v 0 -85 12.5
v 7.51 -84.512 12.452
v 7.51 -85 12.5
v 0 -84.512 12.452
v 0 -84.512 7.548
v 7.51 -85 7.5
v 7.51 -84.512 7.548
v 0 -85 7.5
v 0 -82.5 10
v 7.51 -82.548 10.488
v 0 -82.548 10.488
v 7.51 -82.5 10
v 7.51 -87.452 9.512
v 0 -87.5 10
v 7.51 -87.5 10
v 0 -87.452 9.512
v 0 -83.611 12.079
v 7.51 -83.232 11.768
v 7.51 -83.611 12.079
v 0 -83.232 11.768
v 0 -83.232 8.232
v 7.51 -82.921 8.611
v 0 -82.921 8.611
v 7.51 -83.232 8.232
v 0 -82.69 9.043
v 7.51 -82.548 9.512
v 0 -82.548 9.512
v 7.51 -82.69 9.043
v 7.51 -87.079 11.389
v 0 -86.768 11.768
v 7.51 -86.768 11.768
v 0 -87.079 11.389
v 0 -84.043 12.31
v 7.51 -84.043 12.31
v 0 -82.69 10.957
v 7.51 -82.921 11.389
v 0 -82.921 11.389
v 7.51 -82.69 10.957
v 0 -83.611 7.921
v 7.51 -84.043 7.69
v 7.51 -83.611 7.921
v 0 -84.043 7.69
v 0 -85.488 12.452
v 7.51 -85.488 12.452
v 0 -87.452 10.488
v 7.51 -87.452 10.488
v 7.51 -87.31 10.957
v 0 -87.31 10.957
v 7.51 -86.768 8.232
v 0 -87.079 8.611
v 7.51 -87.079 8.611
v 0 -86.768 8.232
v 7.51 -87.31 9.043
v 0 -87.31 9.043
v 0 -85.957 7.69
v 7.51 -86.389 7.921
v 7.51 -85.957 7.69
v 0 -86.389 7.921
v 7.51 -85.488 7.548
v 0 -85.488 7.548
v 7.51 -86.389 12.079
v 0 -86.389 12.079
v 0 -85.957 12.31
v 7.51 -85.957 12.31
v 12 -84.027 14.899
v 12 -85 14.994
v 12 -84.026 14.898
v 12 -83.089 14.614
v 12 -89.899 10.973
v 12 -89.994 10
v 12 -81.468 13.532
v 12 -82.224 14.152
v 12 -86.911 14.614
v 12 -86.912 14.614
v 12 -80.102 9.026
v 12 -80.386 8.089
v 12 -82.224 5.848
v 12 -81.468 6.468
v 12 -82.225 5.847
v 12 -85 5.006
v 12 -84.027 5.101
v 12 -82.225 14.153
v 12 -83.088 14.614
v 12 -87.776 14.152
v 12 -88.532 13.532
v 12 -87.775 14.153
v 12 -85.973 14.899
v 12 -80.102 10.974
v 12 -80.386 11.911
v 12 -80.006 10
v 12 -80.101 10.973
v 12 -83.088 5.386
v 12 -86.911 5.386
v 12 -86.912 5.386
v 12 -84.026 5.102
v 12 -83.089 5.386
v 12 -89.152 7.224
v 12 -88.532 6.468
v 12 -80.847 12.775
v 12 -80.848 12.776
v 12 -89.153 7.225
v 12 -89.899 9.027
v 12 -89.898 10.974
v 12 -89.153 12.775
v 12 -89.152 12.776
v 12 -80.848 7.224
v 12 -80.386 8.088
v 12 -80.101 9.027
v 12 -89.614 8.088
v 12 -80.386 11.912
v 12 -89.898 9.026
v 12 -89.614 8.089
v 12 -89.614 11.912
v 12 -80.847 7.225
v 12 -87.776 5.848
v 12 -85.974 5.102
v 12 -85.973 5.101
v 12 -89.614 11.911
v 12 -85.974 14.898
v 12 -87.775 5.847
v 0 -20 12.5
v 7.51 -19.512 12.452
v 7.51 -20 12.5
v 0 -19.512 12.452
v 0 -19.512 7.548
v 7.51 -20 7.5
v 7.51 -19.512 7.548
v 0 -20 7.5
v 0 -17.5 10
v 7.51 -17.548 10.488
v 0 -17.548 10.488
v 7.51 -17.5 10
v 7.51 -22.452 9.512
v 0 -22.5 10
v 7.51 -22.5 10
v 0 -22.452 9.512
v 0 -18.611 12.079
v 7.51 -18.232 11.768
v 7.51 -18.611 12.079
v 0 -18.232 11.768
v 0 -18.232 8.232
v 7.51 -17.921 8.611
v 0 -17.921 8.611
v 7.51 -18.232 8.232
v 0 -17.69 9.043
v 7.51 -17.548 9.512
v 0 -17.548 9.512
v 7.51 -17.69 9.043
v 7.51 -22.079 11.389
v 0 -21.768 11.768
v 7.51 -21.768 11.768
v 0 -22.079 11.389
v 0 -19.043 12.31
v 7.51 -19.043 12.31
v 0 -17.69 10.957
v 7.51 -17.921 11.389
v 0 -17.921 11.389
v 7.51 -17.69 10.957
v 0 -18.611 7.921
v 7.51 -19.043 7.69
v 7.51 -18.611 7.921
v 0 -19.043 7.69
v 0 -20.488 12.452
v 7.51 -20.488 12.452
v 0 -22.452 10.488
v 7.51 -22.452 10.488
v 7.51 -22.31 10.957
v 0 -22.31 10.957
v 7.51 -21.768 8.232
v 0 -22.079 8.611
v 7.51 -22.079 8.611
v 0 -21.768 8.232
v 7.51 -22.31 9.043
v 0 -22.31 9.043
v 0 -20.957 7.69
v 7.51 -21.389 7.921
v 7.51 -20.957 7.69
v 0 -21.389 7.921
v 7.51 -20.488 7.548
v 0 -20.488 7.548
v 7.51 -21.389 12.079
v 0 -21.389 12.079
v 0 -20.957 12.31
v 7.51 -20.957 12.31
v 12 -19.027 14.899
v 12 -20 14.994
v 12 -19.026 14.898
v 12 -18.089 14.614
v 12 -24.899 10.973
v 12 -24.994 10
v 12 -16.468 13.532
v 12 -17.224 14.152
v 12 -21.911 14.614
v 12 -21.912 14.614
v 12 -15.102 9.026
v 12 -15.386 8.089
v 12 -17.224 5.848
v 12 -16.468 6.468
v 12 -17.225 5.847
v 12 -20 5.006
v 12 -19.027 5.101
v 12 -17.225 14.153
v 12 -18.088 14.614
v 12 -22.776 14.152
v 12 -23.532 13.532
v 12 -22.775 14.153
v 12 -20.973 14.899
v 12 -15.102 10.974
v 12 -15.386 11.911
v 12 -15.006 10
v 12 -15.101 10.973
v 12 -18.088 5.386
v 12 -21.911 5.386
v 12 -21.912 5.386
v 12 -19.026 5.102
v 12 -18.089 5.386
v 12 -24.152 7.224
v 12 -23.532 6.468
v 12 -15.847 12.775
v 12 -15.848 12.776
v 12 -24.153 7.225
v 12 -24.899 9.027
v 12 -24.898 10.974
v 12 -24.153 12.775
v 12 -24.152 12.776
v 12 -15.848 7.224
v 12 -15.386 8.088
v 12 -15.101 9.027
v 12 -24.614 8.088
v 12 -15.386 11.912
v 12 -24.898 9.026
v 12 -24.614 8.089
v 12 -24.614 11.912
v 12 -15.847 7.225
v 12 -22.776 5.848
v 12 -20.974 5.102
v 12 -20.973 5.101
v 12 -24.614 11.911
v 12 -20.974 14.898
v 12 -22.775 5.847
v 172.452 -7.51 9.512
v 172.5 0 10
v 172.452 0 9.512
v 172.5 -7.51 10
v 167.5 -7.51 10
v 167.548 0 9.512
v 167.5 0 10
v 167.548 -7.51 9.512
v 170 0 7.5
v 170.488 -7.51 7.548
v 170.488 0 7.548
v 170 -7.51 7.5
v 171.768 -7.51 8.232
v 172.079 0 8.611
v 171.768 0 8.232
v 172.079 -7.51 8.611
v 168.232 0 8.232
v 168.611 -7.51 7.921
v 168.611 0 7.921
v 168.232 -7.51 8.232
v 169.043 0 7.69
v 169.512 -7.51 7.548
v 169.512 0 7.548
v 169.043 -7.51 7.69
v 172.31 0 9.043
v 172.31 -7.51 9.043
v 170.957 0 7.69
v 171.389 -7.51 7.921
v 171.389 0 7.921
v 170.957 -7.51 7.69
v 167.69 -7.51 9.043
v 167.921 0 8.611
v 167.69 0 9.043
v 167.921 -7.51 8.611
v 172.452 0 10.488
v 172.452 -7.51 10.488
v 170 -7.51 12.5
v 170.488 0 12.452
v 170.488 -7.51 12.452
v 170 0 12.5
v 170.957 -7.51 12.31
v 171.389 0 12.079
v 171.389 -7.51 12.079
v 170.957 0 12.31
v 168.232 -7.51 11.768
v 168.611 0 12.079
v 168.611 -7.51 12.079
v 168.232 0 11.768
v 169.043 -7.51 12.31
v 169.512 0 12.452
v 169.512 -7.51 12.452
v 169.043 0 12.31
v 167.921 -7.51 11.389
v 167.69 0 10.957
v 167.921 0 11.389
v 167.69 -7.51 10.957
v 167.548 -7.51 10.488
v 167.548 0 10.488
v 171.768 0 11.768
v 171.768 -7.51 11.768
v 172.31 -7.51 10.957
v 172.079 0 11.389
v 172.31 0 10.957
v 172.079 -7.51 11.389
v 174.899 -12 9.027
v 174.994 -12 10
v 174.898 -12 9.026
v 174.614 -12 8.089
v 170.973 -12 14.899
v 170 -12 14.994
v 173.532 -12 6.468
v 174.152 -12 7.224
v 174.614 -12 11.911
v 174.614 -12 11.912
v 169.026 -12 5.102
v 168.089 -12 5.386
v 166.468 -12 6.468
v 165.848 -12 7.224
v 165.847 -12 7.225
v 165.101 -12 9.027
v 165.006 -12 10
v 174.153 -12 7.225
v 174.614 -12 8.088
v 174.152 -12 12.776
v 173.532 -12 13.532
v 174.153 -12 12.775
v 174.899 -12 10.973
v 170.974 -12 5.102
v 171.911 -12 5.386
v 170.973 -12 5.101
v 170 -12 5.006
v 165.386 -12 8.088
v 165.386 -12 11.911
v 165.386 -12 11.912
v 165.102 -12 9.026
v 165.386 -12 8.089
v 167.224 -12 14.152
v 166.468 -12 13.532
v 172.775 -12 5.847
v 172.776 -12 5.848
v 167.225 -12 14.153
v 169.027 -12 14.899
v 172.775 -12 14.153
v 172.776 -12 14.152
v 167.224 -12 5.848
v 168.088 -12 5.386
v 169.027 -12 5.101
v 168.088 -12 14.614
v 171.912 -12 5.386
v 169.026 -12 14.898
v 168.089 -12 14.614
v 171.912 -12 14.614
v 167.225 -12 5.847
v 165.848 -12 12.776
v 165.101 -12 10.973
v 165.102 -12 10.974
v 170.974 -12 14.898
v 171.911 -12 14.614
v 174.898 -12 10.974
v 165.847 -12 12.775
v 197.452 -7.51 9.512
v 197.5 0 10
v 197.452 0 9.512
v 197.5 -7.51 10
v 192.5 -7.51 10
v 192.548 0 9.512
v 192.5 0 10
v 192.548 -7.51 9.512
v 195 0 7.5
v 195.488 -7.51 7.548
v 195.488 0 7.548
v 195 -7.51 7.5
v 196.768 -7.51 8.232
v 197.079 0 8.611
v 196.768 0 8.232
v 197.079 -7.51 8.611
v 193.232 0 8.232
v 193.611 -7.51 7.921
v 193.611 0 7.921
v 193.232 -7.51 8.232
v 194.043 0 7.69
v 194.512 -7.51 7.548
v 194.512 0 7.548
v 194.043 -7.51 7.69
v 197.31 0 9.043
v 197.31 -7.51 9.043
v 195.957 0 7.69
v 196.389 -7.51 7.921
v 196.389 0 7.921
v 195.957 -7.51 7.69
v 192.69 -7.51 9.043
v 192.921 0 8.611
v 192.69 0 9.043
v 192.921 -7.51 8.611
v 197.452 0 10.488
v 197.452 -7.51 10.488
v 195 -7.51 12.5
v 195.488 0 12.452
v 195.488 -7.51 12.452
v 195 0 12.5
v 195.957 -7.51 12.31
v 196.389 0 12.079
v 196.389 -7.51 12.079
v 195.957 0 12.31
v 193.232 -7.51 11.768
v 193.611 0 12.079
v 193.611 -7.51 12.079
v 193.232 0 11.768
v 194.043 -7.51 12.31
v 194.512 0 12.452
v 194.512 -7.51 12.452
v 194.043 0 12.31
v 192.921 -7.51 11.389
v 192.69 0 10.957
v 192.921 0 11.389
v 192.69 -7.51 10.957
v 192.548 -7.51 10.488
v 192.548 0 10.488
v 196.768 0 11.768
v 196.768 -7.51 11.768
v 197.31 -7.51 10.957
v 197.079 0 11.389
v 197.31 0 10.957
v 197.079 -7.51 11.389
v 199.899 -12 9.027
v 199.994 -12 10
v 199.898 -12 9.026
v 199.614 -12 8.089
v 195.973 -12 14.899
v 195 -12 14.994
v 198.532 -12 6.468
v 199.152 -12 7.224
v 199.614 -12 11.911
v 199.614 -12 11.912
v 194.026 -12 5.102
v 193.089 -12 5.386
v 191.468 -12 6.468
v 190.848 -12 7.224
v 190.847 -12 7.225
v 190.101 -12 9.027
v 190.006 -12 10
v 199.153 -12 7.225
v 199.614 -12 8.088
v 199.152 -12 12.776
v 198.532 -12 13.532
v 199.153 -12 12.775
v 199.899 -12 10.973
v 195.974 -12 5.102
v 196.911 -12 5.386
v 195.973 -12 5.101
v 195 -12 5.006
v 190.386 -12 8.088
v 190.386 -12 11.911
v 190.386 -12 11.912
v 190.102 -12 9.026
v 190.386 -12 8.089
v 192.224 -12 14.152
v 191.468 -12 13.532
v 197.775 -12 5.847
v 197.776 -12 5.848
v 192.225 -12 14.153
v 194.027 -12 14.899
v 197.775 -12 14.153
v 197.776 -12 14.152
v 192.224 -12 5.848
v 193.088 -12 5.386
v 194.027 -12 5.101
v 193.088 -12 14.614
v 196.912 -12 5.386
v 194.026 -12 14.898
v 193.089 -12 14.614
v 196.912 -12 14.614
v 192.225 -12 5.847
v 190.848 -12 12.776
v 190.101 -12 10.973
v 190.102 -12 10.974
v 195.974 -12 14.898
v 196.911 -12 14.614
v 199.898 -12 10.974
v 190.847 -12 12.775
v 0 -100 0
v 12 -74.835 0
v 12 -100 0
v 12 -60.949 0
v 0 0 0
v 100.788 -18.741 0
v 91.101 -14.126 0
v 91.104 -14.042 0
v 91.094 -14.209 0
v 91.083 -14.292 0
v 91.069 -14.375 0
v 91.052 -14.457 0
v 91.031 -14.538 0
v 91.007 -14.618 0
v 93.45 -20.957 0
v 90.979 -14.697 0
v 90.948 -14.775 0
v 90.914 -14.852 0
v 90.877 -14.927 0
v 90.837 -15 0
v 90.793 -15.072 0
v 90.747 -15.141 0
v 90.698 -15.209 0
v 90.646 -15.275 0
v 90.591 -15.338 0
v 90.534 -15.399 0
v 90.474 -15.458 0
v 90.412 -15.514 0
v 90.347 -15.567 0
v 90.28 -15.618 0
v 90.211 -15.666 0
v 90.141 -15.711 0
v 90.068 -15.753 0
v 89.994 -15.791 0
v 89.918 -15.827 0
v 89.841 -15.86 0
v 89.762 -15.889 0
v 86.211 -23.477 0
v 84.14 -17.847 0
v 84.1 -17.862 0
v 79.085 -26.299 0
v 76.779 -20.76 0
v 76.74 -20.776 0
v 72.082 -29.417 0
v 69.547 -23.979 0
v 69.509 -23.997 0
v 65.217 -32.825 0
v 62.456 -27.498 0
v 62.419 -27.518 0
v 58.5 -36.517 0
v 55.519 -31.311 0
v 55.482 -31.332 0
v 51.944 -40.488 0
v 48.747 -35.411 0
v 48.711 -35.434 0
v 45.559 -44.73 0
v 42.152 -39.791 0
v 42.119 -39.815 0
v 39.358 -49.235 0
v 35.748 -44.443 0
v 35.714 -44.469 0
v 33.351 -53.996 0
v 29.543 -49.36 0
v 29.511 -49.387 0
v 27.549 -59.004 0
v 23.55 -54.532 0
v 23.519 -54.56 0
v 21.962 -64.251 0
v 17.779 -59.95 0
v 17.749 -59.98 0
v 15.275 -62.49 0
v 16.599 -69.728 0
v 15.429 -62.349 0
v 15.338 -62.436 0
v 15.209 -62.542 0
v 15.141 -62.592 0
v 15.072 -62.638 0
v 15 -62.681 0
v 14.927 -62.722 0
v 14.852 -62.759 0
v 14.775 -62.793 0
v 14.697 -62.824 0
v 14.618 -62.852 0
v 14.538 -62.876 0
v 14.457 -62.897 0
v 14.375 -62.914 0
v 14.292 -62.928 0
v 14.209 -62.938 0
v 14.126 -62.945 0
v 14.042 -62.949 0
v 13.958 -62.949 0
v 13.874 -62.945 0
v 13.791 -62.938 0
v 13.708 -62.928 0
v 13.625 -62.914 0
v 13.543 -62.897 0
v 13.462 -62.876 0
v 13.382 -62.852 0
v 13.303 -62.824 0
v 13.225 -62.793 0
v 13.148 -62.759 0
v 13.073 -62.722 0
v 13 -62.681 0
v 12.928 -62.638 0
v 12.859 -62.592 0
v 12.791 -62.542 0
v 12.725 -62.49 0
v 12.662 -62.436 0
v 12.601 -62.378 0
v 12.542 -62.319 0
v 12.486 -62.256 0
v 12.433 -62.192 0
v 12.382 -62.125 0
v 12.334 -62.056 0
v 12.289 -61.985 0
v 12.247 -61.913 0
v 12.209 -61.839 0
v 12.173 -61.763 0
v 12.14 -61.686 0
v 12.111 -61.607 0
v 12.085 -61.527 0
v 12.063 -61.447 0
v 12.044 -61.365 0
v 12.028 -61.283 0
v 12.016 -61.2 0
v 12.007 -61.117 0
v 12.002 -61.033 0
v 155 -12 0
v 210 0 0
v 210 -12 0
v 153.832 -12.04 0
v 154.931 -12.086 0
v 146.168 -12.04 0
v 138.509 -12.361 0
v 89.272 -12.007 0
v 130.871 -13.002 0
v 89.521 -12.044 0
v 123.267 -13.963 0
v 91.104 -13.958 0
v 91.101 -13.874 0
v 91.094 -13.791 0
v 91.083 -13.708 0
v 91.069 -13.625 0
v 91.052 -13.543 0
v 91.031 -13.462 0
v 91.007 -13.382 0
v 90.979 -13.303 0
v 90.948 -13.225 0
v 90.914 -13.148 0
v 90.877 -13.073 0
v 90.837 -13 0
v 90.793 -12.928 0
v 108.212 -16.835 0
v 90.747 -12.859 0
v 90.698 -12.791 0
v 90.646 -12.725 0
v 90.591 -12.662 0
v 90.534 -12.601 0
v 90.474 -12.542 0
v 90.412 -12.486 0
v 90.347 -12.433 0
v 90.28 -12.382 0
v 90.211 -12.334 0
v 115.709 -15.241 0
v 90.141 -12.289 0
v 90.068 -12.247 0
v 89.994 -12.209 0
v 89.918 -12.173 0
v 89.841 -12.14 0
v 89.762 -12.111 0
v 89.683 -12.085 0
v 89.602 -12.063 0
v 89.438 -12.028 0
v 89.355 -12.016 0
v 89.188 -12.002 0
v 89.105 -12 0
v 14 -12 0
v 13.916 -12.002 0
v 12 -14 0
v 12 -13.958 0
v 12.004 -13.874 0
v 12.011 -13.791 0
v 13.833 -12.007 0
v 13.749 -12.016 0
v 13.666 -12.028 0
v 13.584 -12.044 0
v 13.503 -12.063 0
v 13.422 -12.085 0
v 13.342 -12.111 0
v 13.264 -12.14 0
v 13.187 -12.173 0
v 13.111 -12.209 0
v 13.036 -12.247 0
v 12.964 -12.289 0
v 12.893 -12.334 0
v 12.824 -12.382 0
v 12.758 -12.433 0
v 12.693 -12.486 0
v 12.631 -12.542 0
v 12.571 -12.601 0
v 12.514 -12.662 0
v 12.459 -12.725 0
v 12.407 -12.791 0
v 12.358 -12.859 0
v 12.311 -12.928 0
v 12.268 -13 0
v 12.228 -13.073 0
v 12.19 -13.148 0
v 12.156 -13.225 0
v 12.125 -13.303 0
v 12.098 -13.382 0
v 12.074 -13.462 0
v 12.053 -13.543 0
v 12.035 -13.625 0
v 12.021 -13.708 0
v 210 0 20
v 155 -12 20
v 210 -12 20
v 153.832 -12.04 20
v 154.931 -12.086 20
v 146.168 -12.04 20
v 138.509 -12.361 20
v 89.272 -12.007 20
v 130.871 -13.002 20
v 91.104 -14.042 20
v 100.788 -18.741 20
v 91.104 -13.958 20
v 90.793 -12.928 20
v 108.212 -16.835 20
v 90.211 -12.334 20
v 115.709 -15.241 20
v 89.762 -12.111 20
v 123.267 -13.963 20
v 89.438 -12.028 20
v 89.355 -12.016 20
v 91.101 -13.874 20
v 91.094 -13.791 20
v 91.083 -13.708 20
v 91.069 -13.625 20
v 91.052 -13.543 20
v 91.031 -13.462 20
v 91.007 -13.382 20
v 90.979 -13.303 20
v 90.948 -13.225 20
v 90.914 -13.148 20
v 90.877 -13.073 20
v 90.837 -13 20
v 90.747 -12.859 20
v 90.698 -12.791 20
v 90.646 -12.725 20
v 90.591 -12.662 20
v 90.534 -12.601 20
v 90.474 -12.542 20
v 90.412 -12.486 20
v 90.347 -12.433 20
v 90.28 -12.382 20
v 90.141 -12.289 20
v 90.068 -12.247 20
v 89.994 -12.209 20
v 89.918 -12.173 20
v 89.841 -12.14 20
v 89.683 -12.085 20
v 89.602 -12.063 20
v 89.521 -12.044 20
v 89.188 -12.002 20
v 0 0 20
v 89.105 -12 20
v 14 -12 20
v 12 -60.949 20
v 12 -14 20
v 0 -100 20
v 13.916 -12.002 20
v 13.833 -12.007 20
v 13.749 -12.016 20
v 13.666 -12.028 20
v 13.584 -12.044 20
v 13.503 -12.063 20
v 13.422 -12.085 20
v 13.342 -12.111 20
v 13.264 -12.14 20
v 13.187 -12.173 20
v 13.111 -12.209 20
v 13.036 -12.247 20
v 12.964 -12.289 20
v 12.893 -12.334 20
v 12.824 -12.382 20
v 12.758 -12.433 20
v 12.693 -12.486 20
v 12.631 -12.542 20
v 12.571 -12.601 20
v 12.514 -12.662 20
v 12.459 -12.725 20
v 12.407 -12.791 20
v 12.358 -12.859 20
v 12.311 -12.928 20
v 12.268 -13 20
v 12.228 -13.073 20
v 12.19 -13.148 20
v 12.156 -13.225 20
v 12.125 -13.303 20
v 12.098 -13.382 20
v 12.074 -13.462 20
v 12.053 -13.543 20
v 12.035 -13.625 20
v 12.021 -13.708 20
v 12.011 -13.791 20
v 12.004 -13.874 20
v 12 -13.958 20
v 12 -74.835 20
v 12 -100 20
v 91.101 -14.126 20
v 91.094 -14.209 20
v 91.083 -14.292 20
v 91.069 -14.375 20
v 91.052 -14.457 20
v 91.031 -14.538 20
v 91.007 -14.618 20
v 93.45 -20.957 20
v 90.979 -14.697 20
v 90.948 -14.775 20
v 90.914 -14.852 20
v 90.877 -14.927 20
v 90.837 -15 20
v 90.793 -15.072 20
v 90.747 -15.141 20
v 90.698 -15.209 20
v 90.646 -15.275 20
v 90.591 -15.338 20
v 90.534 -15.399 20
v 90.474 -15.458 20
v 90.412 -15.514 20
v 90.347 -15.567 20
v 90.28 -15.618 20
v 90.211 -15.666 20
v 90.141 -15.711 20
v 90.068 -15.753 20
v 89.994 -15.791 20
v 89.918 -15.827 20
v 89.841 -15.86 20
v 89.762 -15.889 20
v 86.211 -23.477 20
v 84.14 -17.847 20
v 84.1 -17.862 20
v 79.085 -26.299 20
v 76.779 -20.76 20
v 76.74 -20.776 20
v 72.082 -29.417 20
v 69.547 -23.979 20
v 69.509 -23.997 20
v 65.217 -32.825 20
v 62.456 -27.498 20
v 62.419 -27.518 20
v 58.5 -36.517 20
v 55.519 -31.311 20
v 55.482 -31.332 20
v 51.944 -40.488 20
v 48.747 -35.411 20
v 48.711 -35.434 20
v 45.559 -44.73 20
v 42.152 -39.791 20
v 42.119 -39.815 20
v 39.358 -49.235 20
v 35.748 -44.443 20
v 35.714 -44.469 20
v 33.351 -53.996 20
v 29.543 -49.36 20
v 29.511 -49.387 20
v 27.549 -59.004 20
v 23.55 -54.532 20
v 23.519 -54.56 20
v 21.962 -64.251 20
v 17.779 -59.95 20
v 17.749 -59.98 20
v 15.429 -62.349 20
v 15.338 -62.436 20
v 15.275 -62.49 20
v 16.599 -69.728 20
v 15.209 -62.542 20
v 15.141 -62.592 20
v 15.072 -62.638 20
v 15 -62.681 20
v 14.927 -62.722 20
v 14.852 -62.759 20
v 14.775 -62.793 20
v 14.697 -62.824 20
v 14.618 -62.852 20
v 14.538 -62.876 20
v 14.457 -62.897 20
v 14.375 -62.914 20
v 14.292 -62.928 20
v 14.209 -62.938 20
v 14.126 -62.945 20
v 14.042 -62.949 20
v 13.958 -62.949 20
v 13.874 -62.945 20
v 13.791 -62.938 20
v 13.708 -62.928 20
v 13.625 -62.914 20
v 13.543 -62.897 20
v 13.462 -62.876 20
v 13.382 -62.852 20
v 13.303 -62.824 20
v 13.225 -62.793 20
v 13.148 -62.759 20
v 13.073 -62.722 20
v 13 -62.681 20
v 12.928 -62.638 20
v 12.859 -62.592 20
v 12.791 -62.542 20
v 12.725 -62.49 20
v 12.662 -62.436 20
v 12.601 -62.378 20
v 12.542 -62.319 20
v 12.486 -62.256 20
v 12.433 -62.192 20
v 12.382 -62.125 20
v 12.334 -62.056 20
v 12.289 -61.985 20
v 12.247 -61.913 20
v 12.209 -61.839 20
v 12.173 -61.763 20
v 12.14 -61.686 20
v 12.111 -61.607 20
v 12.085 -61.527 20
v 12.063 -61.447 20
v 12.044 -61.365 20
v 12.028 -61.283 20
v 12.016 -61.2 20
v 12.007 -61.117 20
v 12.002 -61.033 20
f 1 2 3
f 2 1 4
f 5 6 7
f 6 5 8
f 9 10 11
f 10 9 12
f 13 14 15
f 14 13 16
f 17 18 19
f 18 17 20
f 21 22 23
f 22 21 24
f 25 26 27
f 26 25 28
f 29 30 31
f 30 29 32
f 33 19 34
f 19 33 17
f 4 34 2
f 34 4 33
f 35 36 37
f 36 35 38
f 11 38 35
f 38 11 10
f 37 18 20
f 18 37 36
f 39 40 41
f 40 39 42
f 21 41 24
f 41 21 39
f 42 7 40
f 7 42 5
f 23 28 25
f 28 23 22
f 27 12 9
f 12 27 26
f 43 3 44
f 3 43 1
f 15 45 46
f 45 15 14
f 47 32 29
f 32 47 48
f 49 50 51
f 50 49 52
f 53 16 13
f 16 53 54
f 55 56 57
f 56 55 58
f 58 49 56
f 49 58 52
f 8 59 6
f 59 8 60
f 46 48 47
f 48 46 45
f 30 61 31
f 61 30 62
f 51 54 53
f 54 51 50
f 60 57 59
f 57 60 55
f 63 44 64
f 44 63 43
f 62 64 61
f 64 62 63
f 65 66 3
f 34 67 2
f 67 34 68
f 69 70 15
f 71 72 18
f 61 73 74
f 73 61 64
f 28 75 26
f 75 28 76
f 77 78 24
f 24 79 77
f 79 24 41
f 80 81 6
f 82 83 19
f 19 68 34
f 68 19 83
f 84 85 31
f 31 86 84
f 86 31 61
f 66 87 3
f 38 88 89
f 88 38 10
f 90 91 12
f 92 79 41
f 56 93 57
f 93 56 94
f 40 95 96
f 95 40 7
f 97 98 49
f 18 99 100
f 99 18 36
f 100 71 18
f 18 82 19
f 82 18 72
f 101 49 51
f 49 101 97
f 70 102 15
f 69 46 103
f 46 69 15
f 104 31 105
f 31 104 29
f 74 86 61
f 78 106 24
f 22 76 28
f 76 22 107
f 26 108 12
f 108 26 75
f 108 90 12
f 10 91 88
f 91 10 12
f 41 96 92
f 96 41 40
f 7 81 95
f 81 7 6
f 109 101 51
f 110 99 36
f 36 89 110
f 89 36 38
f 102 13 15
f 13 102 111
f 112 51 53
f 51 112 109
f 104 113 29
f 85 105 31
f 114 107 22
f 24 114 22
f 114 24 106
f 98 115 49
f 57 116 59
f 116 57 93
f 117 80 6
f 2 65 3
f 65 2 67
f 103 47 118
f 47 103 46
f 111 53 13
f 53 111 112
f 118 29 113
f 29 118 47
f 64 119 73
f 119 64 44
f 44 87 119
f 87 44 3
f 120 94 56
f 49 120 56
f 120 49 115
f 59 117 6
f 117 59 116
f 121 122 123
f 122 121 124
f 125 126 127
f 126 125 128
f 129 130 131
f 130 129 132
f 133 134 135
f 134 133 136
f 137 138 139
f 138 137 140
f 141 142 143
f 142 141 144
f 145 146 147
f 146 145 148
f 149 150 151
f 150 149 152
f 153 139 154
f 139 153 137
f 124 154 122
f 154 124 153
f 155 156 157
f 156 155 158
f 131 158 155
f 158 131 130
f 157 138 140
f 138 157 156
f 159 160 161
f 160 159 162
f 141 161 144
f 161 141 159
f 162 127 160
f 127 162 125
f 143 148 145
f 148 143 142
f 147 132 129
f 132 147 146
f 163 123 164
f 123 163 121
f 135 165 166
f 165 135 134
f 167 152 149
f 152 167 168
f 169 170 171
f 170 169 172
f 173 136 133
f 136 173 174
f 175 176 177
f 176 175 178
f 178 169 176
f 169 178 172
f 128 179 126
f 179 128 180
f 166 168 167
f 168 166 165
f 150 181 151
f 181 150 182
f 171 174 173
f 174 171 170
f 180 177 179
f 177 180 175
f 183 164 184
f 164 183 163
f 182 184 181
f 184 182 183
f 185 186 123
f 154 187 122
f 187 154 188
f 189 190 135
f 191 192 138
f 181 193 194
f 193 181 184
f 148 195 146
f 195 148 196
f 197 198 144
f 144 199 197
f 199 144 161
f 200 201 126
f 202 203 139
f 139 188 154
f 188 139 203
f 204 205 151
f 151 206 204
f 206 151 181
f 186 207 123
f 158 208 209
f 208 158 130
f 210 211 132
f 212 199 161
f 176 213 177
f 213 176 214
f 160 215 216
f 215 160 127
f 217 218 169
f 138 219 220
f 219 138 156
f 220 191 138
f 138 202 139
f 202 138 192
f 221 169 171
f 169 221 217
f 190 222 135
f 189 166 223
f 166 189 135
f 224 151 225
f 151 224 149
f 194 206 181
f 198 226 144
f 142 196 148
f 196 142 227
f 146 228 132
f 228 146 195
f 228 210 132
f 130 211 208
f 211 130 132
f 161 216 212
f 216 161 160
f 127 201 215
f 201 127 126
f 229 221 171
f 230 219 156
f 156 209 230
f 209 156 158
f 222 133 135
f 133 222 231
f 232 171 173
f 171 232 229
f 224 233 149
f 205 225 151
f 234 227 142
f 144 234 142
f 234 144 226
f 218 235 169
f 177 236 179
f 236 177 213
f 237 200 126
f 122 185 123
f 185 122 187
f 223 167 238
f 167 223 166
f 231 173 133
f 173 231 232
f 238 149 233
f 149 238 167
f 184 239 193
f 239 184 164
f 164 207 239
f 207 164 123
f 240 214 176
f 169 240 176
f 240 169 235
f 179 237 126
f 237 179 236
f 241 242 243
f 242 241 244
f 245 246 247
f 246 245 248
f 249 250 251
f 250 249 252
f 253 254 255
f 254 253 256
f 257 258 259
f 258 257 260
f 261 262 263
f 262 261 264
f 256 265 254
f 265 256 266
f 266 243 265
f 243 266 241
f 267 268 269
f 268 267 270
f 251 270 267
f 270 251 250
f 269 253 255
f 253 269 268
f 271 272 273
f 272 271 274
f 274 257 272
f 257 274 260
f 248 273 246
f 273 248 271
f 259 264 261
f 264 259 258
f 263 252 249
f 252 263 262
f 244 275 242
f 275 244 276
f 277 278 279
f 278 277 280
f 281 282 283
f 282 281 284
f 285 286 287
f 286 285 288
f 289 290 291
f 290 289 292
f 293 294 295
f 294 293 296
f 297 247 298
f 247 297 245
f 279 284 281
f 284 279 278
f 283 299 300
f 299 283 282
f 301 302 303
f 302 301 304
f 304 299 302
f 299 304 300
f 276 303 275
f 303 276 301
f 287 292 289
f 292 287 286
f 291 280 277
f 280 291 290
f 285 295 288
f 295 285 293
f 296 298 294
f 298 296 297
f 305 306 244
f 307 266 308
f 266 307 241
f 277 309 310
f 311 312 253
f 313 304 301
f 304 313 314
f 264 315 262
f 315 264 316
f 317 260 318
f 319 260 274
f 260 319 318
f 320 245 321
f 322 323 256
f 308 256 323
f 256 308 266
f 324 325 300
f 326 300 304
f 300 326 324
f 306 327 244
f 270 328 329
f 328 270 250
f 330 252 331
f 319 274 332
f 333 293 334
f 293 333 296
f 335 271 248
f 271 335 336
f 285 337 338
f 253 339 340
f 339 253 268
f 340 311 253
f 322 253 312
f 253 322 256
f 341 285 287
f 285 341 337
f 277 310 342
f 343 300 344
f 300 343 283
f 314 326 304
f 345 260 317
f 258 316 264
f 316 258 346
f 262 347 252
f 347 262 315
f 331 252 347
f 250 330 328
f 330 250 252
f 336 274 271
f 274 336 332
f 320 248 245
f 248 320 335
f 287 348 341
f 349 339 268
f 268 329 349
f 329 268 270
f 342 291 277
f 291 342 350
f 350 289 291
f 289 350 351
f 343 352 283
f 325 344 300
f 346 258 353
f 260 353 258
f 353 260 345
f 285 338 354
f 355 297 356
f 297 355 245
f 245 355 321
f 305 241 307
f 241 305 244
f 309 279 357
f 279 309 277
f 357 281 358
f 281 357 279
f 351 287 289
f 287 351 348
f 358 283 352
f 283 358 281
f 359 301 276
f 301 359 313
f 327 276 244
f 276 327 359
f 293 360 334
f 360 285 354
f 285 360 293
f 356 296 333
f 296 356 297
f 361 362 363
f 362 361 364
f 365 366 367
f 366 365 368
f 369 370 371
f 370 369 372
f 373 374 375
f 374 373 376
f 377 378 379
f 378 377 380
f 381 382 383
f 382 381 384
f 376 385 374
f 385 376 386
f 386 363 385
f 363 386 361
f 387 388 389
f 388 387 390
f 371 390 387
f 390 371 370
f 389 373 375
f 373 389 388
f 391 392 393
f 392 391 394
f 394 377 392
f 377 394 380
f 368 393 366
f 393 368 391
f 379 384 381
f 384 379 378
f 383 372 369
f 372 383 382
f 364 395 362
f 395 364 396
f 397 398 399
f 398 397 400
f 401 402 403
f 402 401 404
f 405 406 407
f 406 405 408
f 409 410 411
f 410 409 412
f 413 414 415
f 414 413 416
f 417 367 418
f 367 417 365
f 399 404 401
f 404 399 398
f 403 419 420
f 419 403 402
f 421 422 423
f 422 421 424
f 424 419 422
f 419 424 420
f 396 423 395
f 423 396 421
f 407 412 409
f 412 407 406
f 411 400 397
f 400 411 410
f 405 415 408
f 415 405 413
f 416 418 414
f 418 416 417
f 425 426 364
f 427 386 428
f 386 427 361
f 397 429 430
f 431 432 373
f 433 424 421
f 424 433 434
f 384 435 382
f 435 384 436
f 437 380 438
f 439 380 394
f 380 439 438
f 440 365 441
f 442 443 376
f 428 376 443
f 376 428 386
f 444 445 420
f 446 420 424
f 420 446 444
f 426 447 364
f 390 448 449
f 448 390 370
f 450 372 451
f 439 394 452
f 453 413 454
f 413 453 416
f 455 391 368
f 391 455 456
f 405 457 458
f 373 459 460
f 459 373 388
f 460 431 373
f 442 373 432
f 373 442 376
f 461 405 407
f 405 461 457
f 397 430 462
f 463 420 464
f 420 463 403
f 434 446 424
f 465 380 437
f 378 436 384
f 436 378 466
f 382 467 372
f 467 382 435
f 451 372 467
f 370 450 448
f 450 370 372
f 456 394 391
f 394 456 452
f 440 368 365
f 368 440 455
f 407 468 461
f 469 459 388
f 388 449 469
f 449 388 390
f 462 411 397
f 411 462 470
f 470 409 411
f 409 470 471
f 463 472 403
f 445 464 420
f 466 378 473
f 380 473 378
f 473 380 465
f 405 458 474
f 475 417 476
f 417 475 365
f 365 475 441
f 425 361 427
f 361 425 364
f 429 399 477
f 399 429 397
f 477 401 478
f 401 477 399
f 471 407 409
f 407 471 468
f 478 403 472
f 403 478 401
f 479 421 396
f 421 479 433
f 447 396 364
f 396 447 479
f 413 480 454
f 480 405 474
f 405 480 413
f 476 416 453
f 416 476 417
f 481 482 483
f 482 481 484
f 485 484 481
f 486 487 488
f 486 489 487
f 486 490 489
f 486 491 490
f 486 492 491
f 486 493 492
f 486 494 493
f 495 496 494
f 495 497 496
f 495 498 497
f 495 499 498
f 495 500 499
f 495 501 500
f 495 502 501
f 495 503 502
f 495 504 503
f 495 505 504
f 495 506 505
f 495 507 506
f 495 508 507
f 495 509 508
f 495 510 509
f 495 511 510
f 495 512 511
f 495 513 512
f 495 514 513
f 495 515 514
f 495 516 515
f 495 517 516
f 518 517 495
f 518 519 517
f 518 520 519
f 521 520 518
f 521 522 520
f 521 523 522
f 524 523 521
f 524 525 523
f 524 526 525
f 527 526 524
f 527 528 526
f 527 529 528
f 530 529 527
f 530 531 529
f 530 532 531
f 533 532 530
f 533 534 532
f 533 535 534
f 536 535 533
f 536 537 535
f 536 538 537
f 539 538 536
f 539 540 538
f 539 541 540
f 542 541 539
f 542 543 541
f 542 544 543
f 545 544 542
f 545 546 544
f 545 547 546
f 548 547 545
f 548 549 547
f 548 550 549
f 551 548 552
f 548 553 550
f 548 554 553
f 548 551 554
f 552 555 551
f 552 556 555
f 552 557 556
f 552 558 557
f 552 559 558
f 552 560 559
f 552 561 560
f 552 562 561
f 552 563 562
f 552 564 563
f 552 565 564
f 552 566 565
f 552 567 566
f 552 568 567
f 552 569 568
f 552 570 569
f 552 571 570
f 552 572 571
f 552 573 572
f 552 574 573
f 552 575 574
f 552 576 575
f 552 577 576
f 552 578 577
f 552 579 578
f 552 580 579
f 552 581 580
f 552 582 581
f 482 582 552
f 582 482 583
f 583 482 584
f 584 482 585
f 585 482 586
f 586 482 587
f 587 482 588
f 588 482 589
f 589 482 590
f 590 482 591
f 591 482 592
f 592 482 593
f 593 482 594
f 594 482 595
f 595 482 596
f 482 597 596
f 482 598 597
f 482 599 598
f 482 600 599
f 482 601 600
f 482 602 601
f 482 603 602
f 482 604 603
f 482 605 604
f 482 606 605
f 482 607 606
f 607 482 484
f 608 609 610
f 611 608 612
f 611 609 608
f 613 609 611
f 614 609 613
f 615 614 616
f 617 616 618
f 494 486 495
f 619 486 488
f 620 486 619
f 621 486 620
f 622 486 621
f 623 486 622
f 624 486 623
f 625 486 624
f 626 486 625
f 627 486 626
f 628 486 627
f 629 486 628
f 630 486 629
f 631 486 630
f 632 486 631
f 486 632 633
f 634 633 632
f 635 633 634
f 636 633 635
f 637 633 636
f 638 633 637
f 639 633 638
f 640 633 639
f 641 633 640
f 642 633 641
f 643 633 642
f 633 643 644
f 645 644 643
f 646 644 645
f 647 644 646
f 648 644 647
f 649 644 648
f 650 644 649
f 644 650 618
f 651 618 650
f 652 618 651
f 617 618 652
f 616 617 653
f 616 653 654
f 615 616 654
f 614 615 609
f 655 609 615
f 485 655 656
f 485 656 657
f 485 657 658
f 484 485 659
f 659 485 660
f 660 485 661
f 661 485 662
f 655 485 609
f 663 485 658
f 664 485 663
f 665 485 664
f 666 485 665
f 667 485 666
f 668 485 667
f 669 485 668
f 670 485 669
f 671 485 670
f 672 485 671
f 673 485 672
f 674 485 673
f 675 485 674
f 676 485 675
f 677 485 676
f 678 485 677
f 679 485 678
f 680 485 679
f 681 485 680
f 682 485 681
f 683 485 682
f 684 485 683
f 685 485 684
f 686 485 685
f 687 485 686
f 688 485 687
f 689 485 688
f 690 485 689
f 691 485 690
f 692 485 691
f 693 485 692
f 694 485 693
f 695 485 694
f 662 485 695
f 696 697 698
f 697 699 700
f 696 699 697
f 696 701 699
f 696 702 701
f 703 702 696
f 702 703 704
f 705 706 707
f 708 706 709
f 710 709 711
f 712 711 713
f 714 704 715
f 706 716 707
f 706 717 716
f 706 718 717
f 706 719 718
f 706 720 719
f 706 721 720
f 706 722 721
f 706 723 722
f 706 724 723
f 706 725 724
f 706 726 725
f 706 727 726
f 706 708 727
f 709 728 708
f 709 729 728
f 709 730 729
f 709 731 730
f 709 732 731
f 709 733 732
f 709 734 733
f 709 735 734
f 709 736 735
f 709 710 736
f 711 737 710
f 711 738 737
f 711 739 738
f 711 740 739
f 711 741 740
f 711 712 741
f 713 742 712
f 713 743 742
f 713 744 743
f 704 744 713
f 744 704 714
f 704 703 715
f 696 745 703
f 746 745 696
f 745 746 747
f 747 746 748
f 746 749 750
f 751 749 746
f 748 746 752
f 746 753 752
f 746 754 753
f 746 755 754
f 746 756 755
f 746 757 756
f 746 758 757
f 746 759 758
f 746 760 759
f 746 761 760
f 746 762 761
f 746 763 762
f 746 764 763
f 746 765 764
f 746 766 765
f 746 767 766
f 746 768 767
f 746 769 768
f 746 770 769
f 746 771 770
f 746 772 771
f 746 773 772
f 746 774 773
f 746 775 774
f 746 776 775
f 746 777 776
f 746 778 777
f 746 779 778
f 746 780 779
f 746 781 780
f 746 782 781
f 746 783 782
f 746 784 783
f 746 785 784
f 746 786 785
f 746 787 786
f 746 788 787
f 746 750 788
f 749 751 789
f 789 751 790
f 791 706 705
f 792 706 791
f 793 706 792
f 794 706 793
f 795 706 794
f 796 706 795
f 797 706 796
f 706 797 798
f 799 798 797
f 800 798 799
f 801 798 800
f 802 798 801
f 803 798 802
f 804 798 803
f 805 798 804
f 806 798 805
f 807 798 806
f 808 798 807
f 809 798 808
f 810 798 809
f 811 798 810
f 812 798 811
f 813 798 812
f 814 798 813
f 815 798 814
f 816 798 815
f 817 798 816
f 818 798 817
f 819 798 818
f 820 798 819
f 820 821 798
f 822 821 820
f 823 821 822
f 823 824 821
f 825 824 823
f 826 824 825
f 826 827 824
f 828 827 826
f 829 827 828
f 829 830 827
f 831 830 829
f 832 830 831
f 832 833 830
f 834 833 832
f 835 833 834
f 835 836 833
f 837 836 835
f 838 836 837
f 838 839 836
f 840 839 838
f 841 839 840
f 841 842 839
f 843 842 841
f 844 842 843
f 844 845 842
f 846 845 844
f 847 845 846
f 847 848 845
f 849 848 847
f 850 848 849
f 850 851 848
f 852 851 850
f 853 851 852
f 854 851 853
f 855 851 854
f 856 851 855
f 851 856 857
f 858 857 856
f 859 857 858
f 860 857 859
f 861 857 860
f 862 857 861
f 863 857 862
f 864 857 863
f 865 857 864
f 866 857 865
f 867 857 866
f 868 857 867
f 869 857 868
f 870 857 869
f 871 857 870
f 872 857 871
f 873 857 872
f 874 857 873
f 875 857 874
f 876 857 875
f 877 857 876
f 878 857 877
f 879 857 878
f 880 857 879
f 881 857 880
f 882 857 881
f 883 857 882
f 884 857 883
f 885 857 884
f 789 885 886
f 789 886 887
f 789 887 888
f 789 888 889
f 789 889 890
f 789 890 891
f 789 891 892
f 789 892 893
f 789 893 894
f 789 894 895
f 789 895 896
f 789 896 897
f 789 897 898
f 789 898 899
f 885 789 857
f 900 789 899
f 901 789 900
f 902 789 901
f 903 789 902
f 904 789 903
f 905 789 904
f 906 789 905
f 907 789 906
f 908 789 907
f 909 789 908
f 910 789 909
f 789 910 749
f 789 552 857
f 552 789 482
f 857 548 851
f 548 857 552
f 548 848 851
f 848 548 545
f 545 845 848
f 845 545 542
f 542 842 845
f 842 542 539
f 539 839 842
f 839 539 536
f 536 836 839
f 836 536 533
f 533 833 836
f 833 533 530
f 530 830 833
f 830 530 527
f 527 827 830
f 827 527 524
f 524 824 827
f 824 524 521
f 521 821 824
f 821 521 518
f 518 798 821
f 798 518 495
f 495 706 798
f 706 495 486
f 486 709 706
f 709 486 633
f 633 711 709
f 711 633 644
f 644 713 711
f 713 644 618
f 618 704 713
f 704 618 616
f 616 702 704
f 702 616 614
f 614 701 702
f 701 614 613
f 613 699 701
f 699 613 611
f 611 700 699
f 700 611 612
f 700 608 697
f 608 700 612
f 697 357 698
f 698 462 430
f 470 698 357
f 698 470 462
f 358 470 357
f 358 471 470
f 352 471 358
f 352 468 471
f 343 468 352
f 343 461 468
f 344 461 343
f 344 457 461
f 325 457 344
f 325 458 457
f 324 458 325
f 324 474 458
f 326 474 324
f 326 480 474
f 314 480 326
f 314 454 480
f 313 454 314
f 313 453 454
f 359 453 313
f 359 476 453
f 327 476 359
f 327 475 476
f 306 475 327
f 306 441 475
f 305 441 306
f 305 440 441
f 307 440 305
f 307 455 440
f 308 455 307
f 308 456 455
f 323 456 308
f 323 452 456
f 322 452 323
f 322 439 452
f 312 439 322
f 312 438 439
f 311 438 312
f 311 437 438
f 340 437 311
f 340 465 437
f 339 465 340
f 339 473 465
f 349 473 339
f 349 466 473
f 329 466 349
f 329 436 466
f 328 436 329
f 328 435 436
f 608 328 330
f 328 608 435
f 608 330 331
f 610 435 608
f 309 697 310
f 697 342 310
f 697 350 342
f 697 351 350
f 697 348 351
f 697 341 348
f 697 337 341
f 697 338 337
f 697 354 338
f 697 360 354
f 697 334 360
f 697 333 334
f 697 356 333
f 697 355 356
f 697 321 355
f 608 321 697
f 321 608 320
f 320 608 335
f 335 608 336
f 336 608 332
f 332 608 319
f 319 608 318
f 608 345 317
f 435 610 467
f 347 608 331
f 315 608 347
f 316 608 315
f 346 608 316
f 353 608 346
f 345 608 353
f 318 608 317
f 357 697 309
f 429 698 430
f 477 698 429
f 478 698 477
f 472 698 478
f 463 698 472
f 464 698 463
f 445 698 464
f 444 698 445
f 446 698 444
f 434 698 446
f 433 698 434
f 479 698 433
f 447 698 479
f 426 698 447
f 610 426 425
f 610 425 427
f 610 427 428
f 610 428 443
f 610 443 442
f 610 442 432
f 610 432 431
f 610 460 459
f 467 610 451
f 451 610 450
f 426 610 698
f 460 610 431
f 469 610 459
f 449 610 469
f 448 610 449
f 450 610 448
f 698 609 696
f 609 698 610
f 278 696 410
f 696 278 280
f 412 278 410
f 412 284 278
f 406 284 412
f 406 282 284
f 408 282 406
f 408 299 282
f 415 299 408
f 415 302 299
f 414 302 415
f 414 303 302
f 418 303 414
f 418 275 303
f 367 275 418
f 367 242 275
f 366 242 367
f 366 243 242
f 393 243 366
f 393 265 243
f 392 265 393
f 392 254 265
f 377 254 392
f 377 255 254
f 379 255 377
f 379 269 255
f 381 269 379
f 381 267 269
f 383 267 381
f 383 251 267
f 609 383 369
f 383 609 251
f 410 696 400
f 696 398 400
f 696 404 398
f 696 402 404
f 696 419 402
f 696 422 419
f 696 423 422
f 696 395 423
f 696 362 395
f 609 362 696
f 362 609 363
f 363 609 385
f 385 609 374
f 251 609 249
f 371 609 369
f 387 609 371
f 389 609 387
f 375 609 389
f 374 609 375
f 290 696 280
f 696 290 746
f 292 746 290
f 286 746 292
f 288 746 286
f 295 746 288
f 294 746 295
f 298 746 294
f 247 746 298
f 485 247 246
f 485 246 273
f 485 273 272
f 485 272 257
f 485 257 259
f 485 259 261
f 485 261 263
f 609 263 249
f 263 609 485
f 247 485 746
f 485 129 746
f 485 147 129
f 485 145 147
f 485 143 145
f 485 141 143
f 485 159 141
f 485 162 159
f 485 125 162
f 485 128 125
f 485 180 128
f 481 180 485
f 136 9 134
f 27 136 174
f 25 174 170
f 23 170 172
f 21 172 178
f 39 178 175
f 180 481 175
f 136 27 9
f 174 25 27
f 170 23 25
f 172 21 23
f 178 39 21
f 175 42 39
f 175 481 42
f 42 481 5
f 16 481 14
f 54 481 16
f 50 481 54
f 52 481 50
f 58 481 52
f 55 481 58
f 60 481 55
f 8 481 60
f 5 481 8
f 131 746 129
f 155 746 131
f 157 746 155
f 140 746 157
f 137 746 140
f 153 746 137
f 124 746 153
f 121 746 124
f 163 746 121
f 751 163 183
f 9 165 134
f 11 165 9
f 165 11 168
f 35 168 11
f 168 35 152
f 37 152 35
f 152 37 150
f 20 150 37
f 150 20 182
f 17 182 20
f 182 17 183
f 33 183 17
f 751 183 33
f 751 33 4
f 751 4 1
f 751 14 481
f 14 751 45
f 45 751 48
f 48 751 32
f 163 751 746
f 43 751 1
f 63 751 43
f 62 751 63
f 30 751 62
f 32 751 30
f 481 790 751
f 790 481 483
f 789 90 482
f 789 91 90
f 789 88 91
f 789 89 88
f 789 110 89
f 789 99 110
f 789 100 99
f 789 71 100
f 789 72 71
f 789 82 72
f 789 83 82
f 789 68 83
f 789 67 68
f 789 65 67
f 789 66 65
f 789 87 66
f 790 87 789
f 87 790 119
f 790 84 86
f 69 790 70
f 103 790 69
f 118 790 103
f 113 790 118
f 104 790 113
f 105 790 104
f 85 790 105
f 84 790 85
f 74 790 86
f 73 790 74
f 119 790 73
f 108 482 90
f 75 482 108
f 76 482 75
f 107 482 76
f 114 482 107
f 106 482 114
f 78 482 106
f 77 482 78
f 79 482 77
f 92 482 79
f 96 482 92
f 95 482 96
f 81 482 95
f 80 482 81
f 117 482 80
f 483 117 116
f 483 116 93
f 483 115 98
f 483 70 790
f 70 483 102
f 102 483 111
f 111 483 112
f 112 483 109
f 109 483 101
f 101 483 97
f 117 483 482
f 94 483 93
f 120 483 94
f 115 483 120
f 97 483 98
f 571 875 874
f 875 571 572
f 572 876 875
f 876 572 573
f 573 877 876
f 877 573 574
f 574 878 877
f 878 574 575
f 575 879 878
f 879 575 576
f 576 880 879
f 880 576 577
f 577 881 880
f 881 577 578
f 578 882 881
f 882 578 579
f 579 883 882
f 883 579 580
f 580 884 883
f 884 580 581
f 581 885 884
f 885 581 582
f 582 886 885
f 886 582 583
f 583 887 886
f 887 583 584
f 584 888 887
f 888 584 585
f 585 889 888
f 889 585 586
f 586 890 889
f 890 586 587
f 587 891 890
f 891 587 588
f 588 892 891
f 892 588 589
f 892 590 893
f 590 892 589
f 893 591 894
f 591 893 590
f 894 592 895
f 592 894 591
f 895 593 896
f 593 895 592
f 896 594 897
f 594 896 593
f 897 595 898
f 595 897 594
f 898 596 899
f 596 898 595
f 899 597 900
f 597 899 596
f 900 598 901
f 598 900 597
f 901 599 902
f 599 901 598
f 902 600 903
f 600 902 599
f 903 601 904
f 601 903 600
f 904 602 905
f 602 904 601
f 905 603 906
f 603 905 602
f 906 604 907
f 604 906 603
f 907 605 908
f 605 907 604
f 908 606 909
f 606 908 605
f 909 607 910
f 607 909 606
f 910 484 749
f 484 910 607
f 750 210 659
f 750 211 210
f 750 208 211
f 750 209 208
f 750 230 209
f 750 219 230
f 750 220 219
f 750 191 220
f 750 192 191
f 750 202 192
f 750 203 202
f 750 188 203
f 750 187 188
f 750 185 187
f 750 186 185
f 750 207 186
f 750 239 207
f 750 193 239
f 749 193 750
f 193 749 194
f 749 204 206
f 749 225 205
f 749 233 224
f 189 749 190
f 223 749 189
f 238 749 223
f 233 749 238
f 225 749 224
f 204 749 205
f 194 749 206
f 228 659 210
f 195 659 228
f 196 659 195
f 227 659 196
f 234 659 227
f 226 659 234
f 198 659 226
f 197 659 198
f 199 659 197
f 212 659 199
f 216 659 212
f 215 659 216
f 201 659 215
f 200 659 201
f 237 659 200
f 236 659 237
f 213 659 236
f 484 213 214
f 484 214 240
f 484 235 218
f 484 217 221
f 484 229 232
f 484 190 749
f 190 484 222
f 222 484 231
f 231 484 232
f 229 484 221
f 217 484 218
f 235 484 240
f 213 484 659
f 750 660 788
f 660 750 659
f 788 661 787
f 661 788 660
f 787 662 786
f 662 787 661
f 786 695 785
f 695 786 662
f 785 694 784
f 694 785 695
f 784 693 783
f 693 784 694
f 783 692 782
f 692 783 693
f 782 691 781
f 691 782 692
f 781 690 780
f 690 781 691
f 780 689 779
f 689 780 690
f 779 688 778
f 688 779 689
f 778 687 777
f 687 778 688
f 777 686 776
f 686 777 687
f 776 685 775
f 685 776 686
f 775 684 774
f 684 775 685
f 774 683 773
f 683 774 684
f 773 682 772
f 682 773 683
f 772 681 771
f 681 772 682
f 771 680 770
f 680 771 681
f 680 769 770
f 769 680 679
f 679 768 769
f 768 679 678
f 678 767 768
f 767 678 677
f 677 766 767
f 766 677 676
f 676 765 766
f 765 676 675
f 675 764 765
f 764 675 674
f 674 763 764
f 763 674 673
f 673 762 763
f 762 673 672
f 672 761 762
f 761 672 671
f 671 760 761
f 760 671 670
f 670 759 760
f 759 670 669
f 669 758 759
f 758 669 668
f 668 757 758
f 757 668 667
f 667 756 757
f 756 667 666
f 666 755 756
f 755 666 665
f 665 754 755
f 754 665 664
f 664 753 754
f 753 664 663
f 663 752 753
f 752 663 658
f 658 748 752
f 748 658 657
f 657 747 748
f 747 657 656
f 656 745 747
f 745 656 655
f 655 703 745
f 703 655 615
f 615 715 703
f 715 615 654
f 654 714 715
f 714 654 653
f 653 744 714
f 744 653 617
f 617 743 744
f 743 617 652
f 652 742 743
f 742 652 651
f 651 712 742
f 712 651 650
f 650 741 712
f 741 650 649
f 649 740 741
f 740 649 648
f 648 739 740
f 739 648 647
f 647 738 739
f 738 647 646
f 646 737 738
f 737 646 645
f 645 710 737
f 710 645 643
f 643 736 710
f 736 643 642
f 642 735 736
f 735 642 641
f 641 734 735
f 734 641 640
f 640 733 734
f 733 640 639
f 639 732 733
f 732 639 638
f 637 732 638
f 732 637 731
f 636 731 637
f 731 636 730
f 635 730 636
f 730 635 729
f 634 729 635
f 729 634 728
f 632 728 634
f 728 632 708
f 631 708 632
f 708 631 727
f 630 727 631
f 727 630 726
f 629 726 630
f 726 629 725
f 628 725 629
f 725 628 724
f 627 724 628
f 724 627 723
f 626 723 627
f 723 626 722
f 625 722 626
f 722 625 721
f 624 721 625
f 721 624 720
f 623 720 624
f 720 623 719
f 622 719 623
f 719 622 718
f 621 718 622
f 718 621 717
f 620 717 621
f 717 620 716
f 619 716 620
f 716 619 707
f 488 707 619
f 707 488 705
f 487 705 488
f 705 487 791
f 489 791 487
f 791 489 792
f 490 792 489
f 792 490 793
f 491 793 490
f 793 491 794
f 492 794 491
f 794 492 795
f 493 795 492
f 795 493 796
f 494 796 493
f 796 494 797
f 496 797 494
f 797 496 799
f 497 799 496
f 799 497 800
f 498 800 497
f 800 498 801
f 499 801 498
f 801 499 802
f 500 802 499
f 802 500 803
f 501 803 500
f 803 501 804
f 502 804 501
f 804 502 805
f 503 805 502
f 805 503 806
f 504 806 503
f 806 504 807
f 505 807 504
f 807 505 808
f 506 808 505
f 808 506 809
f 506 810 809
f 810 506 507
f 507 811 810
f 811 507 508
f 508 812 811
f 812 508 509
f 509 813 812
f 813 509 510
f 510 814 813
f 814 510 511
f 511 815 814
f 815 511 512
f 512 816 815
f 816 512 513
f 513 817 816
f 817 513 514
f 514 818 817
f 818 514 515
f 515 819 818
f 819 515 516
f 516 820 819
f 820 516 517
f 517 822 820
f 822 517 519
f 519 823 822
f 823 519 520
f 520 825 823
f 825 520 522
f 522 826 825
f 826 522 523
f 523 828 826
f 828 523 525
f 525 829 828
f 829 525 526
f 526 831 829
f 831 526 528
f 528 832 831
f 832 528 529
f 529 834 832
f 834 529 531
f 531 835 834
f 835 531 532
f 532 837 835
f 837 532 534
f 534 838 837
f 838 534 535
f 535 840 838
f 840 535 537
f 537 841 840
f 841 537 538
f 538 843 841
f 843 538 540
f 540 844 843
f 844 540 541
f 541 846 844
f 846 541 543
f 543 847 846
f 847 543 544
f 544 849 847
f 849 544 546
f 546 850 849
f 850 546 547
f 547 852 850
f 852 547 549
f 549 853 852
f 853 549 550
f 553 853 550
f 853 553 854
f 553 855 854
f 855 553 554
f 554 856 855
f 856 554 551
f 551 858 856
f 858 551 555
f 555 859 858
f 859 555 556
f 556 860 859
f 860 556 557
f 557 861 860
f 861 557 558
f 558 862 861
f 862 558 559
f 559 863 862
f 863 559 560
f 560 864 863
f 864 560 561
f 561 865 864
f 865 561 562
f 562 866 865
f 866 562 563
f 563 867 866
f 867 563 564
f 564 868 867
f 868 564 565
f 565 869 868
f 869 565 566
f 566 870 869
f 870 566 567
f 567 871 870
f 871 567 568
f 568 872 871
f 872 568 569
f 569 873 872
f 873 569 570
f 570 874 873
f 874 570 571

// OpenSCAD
// ==========================================
// PARAMETRY WSPORNIKA
// ==========================================
shelf_len = 210;         // Długość ramienia pod półkę (oś X)
wall_len = 100;          // Długość ramienia przy ścianie (oś Y)
arm_width = 12;          // Grubość płaskiej ramy nośnej (12 mm)
arch_thick = 6;          // GRUBOŚĆ ŁUKU - 6 mm (50% cieńszy od ramy)
thickness = 20;          // Grubość całkowita 3D
$fn = 150;               // Bardzo wysoka rozdzielczość krzywizn

// ==========================================
// KROK 1: Bryła bazowa 2D (Płynny, aerodynamiczny łuk)
// ==========================================
module solid_base() {
    union() {
        // Lita rama brzegowa (gwarantuje 12 mm na ramionach)
        polygon([
            [0, 0],
            [shelf_len, 0],
            [shelf_len, -arm_width],
            [arm_width, -arm_width],
            [arm_width, -wall_len],
            [0, -wall_len]
        ]);
        
        // Zoptymalizowany, długi i płynny łuk
        difference() {
            polygon([
                [arm_width, -arm_width],
                [155, -arm_width],
                [arm_width, -190] 
            ]);
            // Matematycznie wyliczony okrąg tnący
            translate([150, -195]) circle(r=183);
        }
    }
}

// ==========================================
// KROK 2: Wewnętrzne okno (Płynna łezka)
// ==========================================
module single_window() {
    offset(r=2) offset(r=-2)
    difference() {
        // Wewnętrzny zarys okna chroniący 12 mm ramy
        polygon([
            [arm_width, -arm_width], 
            [105, -arm_width], 
            [arm_width, -120]
        ]);
        
        // Ten sam okrąg tnący powiększony o grubość łuku (6 mm)
        translate([150, -195]) circle(r=183 + arch_thick);
    }
}

// ==========================================
// KROK 3: Prawidłowe otwory montażowe (Poziome)
// ==========================================
module wall_hole(y_pos) {
    // Wiercone w osi X od wewnętrznego lica (X = 12) w stronę ściany
    translate([arm_width + 0.01, y_pos, thickness / 2])
    rotate([0, -90, 0]) {
        cylinder(r=2.5, h=arm_width + 2, $fn=32);              // Przelot na śrubę
        cylinder(r1=5.0, r2=2.5, h=4.5, $fn=32);                 // Faza stożkowa zlicowana z ramą
    }
}

module shelf_hole(x_pos) {
    // Wiercone w osi Y od wewnętrznego lica (Y = -12) w stronę półki
    translate([x_pos, -arm_width - 0.01, thickness / 2])
    rotate([-90, 0, 0]) {
        cylinder(r=2.5, h=arm_width + 2, $fn=32);              // Przelot na śrubę
        cylinder(r1=5.0, r2=2.5, h=4.5, $fn=32);                 // Faza stożkowa zlicowana z ramą
    }
}

// ==========================================
// KROK 4: GENEROWANIE GŁÓWNEGO MODELU 3D
// ==========================================
difference() {
    // 1. Profil 2D wyciągnięty na grubość
    linear_extrude(height = thickness)
    difference() {
        solid_base();
        single_window();
    }
    
    // 2. Otwór do ściany 
    wall_hole(-85); 
    wall_hole(-20); 

    
    // 3. Otwory pod półkę (drugi otwór przesunięty na X = 130 zgodnie z zaznaczeniem)
    shelf_hole(170); 
    shelf_hole(195); 
}
